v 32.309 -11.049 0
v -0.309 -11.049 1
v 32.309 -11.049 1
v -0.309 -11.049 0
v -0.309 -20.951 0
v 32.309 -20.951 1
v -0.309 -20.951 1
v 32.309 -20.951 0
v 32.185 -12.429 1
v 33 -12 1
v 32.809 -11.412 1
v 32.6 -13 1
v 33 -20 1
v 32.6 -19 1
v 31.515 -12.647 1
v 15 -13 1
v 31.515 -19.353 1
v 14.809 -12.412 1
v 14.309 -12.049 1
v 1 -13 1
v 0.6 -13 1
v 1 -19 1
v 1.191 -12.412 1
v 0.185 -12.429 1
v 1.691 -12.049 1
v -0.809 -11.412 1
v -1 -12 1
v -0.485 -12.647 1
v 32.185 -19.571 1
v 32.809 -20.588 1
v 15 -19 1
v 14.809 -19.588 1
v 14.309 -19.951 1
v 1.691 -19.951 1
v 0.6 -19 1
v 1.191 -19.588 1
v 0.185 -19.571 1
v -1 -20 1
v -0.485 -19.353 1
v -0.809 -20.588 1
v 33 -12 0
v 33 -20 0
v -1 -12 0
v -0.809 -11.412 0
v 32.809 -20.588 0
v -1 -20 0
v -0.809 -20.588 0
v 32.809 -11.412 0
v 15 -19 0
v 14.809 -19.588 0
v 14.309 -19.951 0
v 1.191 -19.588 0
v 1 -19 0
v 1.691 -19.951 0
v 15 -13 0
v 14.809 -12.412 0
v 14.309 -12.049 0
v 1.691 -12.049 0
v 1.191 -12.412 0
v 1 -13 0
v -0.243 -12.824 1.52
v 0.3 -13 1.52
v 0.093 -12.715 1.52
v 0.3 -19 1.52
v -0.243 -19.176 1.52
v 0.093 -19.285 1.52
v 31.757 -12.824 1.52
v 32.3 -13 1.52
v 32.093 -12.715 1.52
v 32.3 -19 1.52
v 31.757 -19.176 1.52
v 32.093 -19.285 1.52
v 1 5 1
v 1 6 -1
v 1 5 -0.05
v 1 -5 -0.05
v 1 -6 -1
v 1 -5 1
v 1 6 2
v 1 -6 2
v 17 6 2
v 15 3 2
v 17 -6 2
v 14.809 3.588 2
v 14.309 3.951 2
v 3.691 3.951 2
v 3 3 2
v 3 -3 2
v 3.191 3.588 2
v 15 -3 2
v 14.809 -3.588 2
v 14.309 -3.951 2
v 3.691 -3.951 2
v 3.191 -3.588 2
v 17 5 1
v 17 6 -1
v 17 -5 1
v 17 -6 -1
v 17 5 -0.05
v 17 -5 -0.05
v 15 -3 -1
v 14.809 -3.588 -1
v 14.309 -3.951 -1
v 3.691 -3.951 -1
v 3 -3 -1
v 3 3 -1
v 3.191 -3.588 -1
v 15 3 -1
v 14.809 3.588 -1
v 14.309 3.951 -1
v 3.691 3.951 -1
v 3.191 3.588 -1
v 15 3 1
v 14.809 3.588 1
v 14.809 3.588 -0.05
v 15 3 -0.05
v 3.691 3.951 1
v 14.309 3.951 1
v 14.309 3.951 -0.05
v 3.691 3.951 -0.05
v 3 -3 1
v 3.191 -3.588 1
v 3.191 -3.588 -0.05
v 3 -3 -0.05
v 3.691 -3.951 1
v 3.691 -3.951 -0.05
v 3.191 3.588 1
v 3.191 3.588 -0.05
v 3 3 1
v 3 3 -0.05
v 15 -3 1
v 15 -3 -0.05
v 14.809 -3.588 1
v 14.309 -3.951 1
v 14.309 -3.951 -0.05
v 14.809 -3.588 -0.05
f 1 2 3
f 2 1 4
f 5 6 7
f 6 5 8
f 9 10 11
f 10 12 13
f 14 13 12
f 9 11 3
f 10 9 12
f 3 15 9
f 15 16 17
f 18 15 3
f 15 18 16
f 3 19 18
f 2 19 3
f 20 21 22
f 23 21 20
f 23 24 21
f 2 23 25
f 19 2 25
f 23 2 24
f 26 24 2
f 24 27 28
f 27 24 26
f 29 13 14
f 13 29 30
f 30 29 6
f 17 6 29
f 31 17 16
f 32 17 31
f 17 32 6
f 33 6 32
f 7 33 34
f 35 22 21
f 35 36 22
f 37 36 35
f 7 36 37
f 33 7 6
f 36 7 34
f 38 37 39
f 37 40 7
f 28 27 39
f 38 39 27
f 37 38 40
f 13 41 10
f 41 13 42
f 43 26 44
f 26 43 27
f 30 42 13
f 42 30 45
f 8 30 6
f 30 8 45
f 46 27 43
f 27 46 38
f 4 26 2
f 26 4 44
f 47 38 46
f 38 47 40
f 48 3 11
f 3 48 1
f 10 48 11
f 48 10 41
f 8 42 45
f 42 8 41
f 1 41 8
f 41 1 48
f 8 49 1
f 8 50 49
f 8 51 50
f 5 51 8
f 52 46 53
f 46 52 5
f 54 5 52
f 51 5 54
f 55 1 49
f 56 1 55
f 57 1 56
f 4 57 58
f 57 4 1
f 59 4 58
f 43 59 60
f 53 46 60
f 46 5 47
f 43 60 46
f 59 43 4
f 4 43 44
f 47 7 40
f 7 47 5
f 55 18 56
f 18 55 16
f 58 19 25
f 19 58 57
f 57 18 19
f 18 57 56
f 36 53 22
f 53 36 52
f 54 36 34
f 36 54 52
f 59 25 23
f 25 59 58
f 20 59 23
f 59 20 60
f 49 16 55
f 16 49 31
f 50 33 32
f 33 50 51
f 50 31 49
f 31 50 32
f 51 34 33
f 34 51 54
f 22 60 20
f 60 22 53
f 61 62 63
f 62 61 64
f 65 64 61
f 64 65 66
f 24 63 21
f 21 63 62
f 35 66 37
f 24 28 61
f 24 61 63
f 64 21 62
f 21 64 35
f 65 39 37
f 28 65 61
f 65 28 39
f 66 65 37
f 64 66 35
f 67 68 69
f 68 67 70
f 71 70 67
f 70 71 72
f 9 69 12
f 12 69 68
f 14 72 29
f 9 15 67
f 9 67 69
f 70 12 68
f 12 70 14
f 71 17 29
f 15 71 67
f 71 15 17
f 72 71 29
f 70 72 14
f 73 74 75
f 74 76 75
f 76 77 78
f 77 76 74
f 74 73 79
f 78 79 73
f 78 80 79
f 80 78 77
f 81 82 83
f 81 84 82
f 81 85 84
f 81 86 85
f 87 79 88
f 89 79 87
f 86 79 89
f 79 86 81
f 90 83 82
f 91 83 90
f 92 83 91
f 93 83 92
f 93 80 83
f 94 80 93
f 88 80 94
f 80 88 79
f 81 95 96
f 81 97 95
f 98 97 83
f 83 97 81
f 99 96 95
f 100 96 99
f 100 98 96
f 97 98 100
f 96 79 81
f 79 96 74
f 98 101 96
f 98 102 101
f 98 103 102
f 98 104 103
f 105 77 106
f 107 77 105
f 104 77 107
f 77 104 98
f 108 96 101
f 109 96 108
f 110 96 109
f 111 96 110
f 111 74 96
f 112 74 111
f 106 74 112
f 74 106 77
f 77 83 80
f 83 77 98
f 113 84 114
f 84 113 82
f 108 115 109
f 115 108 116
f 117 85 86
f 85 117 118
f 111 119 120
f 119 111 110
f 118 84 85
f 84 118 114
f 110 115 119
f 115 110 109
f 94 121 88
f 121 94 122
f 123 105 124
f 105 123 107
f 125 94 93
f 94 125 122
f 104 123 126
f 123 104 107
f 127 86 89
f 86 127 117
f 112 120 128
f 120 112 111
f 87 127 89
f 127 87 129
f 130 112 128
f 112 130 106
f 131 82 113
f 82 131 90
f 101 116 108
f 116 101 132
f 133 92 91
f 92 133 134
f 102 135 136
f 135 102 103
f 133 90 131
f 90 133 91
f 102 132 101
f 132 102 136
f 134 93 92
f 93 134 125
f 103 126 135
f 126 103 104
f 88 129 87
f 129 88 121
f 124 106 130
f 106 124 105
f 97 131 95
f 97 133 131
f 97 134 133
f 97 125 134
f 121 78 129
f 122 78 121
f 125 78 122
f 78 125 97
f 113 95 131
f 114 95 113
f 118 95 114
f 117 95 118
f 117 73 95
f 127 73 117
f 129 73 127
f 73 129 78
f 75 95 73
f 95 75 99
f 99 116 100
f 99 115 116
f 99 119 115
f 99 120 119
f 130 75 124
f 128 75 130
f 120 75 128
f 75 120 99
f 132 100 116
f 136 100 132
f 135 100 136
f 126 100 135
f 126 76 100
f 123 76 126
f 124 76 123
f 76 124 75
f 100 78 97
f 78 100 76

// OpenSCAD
// slider
translate([0,-20,0]){ //-7-7*sin($t*314)
    difference(){
        hull(){
            cube([32,8,1]);
            for(x=[0,32]){
                for(y=[0,8]){
                    translate([x,y,0]) cylinder(h=1,r=1,$fn=10);
                }
            }
        }
        //aperture
        hull(){
            for(x=[2,14]){
                for(y=[1,7]){
                    translate([x,y,-1])
                        cylinder(h=4,r=1,$fn=10);
                }
            }
        }
    }
    //bars
    for(x=[0,32]){
        translate([x,0,1])
        color([1,0,0])
        hull(){
            translate([0,7,0])
                sphere(.6);
            translate([0,1,0])
                sphere(.6);
        }
    }
}

//frame
color([0,.5,1])
translate([1,-6,-1]) {
    difference(){
        cube([16,12,3]);
        //aperture
        hull(){
            for(x=[3,13]){
                for(y=[3,9]){
                    translate([x,y,-1])
                        cylinder(h=6,r=1,$fn=10);
                }
            }
        }
        //lateral slat
        translate([-1,1,.95]) cube([18,10,1.05]);
    }
}
